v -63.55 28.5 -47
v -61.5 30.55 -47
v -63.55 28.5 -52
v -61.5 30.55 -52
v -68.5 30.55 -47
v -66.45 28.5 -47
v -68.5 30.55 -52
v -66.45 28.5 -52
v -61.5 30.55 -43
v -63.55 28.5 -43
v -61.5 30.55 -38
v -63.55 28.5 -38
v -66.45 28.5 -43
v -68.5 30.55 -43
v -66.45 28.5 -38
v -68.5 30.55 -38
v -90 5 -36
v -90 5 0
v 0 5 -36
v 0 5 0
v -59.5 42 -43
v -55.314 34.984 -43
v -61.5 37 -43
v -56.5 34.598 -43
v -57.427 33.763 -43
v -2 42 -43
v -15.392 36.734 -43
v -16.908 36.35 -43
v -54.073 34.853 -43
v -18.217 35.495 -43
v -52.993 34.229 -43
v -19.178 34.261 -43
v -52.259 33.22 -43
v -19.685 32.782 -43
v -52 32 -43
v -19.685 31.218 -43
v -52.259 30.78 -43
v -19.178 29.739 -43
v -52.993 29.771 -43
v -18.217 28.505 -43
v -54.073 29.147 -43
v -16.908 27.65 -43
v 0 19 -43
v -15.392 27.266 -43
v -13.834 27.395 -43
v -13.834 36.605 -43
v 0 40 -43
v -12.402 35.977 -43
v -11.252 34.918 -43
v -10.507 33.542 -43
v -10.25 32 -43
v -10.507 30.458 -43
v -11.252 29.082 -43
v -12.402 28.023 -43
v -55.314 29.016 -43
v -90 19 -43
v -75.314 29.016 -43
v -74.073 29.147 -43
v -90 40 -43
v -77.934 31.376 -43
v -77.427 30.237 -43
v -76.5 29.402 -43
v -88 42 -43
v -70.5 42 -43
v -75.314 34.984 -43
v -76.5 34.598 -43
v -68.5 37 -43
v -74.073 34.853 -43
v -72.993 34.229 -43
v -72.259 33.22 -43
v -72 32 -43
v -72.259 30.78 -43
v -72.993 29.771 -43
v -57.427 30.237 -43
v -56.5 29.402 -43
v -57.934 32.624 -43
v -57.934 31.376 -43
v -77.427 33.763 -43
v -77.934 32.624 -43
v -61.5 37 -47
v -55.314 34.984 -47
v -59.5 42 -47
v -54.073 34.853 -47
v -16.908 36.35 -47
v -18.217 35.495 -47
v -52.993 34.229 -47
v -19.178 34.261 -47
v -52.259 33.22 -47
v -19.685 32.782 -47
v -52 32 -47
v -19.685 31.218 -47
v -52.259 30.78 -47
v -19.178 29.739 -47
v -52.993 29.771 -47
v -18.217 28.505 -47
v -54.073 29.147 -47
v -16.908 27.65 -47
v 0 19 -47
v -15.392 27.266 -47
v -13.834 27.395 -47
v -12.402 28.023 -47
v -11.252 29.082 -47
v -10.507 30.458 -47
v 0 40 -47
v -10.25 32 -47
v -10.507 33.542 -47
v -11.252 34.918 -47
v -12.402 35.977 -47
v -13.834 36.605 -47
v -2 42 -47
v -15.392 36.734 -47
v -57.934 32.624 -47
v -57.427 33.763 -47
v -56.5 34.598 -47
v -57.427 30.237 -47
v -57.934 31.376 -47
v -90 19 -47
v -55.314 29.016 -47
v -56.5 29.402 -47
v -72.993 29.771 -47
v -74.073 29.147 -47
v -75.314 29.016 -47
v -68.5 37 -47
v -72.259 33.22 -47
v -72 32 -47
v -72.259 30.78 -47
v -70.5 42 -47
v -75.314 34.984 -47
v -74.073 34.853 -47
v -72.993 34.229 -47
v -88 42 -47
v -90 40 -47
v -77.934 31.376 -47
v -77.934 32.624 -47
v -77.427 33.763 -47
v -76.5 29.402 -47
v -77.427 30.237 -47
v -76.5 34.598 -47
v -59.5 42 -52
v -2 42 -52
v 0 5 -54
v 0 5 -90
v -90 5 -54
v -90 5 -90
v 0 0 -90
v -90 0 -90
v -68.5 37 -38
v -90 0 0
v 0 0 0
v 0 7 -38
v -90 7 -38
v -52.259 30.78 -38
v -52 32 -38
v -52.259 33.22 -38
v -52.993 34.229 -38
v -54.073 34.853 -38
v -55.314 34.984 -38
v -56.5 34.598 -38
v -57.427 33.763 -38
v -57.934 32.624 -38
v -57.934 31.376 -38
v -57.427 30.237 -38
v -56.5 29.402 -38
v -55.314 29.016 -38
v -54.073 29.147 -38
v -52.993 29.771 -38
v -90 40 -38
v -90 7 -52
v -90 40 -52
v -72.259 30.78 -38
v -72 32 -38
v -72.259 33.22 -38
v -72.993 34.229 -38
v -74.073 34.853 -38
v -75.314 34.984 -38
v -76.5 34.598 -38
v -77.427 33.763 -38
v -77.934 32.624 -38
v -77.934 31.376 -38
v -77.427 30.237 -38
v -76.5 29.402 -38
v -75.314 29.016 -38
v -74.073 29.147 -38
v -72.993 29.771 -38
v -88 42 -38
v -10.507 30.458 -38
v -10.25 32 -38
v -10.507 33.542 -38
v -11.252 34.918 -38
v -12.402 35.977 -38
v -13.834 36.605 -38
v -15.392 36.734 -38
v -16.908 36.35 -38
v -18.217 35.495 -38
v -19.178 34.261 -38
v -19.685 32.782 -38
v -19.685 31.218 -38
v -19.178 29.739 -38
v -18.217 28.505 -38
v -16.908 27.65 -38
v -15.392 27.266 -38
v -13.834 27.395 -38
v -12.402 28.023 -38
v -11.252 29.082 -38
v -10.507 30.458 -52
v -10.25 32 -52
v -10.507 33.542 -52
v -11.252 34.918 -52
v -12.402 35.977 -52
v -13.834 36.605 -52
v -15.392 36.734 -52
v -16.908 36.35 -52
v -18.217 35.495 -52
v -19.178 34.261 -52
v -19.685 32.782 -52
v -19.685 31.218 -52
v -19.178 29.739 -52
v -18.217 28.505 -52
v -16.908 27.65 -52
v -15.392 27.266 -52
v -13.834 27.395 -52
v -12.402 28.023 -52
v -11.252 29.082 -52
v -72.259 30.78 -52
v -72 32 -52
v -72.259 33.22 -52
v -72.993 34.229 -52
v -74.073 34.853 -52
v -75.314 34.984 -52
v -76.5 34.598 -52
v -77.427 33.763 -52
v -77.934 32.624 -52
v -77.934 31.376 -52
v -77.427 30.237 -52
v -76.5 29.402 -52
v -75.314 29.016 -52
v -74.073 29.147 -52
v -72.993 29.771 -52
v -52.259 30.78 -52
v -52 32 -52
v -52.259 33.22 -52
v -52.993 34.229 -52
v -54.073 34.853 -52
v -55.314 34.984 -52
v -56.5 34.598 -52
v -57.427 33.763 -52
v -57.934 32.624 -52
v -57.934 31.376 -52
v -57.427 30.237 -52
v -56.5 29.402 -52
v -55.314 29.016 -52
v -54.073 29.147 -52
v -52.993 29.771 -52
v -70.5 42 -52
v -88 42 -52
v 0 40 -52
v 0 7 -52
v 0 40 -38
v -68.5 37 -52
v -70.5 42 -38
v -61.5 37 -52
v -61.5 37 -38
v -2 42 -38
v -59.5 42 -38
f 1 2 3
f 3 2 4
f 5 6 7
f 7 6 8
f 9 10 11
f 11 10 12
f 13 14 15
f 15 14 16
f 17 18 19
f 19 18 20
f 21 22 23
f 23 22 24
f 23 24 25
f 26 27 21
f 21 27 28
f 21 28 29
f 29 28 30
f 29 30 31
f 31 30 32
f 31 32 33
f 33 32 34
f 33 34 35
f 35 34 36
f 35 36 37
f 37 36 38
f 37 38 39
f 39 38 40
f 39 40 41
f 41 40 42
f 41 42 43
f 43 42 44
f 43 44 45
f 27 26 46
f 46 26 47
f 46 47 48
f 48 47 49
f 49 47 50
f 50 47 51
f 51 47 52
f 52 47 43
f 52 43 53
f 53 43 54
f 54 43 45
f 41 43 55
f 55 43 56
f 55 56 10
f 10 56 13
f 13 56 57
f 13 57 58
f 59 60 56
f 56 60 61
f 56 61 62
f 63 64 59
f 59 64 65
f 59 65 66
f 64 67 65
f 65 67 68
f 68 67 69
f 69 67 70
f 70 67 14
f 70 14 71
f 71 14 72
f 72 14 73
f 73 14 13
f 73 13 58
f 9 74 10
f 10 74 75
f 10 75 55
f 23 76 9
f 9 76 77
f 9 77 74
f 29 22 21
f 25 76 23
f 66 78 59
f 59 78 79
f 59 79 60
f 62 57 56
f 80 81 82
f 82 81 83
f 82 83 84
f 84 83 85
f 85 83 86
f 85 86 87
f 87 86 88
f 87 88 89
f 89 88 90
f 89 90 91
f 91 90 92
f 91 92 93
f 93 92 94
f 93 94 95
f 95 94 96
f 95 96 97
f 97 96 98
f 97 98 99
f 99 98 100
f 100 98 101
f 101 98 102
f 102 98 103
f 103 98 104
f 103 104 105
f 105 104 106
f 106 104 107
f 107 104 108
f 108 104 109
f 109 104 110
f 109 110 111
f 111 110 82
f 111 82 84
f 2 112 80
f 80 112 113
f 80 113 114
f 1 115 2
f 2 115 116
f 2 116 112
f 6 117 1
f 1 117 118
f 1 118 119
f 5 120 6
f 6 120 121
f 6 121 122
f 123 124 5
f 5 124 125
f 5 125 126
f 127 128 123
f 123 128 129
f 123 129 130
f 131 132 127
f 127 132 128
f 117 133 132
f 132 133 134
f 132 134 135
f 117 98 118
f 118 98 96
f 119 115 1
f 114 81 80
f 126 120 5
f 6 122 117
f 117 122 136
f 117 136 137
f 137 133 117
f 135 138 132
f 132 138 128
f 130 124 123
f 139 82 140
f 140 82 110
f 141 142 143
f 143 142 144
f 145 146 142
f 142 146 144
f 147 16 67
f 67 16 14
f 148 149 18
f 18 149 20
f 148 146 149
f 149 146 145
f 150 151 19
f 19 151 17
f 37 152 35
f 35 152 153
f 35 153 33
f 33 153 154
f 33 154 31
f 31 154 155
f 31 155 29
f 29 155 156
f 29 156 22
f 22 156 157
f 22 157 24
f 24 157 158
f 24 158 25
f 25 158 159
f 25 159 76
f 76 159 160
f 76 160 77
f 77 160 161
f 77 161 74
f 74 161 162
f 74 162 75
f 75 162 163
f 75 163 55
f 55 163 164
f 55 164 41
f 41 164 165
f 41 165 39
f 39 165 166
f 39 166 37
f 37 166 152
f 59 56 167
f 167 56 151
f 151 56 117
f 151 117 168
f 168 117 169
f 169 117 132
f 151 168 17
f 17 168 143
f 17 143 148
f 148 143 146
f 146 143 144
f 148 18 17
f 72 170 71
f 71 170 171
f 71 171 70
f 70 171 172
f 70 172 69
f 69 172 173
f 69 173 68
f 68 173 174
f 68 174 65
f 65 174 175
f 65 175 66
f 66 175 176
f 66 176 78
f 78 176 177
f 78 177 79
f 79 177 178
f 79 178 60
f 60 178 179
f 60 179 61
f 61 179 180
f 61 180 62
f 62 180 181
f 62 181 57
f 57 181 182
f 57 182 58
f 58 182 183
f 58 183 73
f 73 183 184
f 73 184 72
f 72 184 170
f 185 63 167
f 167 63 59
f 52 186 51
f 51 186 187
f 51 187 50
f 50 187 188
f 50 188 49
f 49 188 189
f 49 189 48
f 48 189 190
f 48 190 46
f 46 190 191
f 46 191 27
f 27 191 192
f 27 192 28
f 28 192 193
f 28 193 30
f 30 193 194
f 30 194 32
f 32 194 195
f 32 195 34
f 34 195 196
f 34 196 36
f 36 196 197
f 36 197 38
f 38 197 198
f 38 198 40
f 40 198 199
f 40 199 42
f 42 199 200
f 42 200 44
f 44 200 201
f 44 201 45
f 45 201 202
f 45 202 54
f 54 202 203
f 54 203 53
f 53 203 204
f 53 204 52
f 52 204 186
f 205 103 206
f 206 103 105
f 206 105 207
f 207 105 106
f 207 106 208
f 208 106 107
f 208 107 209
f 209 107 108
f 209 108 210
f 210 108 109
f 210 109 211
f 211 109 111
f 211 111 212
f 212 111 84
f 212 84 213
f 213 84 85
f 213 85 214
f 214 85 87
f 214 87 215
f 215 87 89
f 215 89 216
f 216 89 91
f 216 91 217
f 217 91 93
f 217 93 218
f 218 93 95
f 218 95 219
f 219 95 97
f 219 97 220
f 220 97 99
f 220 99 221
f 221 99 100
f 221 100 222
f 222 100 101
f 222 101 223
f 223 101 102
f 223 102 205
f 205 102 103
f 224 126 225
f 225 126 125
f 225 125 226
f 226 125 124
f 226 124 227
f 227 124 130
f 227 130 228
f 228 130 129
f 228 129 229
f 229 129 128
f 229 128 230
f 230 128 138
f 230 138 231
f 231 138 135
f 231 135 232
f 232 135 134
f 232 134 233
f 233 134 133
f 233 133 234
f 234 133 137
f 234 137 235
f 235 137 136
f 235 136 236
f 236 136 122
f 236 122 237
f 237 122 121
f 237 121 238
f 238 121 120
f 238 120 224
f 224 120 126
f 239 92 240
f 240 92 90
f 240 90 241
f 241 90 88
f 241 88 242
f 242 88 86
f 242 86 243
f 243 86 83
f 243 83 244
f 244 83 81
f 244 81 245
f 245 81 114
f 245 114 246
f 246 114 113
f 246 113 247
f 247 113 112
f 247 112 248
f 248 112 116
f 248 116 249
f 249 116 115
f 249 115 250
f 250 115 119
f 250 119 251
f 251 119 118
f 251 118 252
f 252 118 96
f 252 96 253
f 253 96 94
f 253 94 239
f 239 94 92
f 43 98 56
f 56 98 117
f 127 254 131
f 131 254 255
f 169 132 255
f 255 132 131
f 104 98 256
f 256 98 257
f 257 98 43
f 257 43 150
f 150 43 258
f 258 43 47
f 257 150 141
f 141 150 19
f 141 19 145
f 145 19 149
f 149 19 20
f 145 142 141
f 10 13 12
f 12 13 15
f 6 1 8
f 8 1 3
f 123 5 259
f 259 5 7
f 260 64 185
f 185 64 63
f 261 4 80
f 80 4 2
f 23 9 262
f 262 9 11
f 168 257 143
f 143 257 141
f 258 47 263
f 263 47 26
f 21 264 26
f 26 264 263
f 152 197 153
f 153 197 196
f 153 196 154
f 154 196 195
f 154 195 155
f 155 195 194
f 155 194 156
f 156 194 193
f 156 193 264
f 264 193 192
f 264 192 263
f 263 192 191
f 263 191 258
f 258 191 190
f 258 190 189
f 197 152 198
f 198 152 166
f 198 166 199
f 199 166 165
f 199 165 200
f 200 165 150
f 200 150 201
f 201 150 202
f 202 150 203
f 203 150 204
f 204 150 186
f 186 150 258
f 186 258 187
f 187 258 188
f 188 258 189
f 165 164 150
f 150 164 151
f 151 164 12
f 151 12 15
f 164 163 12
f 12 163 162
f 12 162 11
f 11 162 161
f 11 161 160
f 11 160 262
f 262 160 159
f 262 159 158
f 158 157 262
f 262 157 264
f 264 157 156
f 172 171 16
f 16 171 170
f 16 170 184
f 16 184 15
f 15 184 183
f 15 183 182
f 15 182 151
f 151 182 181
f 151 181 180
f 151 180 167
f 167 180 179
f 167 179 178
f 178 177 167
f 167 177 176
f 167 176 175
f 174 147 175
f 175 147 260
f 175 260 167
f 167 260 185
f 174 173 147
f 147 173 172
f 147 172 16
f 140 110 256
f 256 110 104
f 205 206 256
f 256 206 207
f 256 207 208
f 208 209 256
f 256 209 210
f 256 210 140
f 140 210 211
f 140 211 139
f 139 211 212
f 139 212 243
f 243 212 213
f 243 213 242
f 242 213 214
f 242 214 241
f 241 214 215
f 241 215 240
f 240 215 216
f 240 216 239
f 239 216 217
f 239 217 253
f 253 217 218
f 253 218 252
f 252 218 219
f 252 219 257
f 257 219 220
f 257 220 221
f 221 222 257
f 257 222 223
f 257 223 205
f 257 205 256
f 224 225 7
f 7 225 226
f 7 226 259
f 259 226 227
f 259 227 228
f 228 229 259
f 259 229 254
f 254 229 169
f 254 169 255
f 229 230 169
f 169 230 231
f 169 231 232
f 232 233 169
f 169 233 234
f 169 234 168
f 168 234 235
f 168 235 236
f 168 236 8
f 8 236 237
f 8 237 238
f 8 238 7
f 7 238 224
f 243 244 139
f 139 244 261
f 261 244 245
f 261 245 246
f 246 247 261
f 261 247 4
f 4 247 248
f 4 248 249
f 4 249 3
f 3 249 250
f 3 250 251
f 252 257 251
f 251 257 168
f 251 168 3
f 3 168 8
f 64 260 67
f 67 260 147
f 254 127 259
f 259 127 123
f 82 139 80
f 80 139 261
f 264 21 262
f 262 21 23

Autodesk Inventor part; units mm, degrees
ref_plane "YZ Plane" through (0, 0, 0) normal (1, 0, 0) x (0, 1, 0)
ref_plane "XZ Plane" through (0, 0, 0) normal (0, 1, 0) x (-1, 0, 0)
ref_plane "XY Plane" through (0, 0, 0) normal (0, 0, 1) x (1, 0, 0)
sketch "Sketch1" plane through (0, 0, 0) normal (0, 1, 0) x (-1, 0, 0)
  line L0 (0, 0) -> (90, 0)
  line L1 (90, 0) -> (90, -90)
  line L2 (90, -90) -> (0, -90)
  line L3 (0, -90) -> (0, 0)
  dimension "d0" = 90
  dimension "d1" = 90
extrude "Extrusion1" add sketch "Sketch1" along normal blind 5
sketch "Sketch2" plane through (0, 5, 0) normal (0, 1, 0) x (1, 0, 0)
  line L0 (-90, 90) -> (-90, 0) construction
  line L1 (-90, 45) -> (0, 45) construction
  line L2 (0, 0) -> (0, 90) construction
  line L3 (-90, 43) -> (0, 43)
  line L4 (0, 43) -> (0, 38)
  line L5 (0, 38) -> (-90, 38)
  line L6 (-90, 38) -> (-90, 43)
  line L7 (-90, 47) -> (0, 47)
  line L8 (0, 47) -> (0, 52)
  line L9 (0, 52) -> (-90, 52)
  line L10 (-90, 52) -> (-90, 47)
  dimension "d5" = 5
  dimension "d6" = 5
  dimension "d7" = 2
  dimension "d8" = 2
extrude "Extrusion2" add sketch "Sketch2" along normal blind 37
sketch "Sketch3" plane through (-90, 5, -38) normal (0, 0, 1) x (1, 0, 0)
  circle A0 centre (15, 27) radius 3
  circle A1 centre (35, 27) radius 3
  circle A2 centre (75, 27) radius 4.75
  line L0 (0, 0) -> (0, 37) projected
  line L1 (90, 0) -> (90, 37) projected
  line L2 (0, 37) -> (90, 37) projected
  line L3 (28.5, 25.5503) -> (26.4497, 23.5)
  line L4 (26.4497, 23.5) -> (23.5503, 23.5)
  line L5 (23.5503, 23.5) -> (21.5, 25.5503)
  line L6 (21.5, 25.5503) -> (28.5, 25.5503)
  point P0 (90, -5)
  point P1 (25, 27)
  point P2 (25, 27)
  dimension "d11" = 6
  dimension "d12" = 6
  dimension "d13" = 9.5
  dimension "d14" = 20
  dimension "d15" = 40
  dimension "d16" = 15
  dimension "d17" = 15
  dimension "d18" = 10
  dimension "d20" = 10
extrude "Extrusion3" cut sketch "Sketch3" against normal blind 14
sketch "Sketch4" plane through (-90, 5, -38) normal (0, 0, 1) x (1, 0, 0)
  line L0 (21.5, 25.5503) -> (28.5, 25.5503) projected
  line L1 (90, 37) -> (0, 37) projected
  line L2 (21.5, 25.5503) -> (28.5, 25.5503)
  line L3 (28.5, 25.5503) -> (28.5, 37)
  line L4 (28.5, 37) -> (21.5, 37)
  line L5 (21.5, 37) -> (21.5, 25.5503)
  point P0 (90, -5)
  dimension "d24" = 7
extrude "Extrusion4" cut sketch "Sketch4" against normal blind 14
sketch "Sketch5" plane through (0, 5, 0) normal (0, 1, 0) x (1, 0, 0)
  point P0 (0, 0)
sketch "Sketch6" plane through (0, 5, 0) normal (0, 1, 0) x (1, 0, 0)
  line L0 (-90, 47) -> (-90, 43) projected
  line L1 (0, 43) -> (0, 47) projected
  line L2 (-90, 43) -> (0, 43)
  line L3 (0, 43) -> (0, 47)
  line L4 (0, 47) -> (-90, 47)
  line L5 (-90, 47) -> (-90, 43)
  point P0 (0, 0)
extrude "Extrusion5" add sketch "Sketch6" along normal blind 14
chamfer "Chamfer1" distance 2 angle 45 6 edges at (-45, 5, -52) (0, 42, -40.5) (0, 42, -49.5) (-90, 42, -49.5) (-90, 42, -40.5) (-45, 5, -38)
chamfer "Chamfer2" distance 2 distance2 5 1 edges at (-68.5, 42, -40.5) measured on face at (-81.5, 42, -41.3333)
chamfer "Chamfer3" distance 2 distance2 5 1 edges at (-68.5, 42, -49.5) measured on face at (-81.5, 42, -50.3333)
chamfer "Chamfer4" distance 2 distance2 5 1 edges at (-61.5, 42, -49.5) measured on face at (-21.8333, 42, -48.6667)
chamfer "Chamfer5" distance 2 distance2 5 1 edges at (-61.5, 42, -40.5) measured on face at (-41.6667, 42, -41.3333)
